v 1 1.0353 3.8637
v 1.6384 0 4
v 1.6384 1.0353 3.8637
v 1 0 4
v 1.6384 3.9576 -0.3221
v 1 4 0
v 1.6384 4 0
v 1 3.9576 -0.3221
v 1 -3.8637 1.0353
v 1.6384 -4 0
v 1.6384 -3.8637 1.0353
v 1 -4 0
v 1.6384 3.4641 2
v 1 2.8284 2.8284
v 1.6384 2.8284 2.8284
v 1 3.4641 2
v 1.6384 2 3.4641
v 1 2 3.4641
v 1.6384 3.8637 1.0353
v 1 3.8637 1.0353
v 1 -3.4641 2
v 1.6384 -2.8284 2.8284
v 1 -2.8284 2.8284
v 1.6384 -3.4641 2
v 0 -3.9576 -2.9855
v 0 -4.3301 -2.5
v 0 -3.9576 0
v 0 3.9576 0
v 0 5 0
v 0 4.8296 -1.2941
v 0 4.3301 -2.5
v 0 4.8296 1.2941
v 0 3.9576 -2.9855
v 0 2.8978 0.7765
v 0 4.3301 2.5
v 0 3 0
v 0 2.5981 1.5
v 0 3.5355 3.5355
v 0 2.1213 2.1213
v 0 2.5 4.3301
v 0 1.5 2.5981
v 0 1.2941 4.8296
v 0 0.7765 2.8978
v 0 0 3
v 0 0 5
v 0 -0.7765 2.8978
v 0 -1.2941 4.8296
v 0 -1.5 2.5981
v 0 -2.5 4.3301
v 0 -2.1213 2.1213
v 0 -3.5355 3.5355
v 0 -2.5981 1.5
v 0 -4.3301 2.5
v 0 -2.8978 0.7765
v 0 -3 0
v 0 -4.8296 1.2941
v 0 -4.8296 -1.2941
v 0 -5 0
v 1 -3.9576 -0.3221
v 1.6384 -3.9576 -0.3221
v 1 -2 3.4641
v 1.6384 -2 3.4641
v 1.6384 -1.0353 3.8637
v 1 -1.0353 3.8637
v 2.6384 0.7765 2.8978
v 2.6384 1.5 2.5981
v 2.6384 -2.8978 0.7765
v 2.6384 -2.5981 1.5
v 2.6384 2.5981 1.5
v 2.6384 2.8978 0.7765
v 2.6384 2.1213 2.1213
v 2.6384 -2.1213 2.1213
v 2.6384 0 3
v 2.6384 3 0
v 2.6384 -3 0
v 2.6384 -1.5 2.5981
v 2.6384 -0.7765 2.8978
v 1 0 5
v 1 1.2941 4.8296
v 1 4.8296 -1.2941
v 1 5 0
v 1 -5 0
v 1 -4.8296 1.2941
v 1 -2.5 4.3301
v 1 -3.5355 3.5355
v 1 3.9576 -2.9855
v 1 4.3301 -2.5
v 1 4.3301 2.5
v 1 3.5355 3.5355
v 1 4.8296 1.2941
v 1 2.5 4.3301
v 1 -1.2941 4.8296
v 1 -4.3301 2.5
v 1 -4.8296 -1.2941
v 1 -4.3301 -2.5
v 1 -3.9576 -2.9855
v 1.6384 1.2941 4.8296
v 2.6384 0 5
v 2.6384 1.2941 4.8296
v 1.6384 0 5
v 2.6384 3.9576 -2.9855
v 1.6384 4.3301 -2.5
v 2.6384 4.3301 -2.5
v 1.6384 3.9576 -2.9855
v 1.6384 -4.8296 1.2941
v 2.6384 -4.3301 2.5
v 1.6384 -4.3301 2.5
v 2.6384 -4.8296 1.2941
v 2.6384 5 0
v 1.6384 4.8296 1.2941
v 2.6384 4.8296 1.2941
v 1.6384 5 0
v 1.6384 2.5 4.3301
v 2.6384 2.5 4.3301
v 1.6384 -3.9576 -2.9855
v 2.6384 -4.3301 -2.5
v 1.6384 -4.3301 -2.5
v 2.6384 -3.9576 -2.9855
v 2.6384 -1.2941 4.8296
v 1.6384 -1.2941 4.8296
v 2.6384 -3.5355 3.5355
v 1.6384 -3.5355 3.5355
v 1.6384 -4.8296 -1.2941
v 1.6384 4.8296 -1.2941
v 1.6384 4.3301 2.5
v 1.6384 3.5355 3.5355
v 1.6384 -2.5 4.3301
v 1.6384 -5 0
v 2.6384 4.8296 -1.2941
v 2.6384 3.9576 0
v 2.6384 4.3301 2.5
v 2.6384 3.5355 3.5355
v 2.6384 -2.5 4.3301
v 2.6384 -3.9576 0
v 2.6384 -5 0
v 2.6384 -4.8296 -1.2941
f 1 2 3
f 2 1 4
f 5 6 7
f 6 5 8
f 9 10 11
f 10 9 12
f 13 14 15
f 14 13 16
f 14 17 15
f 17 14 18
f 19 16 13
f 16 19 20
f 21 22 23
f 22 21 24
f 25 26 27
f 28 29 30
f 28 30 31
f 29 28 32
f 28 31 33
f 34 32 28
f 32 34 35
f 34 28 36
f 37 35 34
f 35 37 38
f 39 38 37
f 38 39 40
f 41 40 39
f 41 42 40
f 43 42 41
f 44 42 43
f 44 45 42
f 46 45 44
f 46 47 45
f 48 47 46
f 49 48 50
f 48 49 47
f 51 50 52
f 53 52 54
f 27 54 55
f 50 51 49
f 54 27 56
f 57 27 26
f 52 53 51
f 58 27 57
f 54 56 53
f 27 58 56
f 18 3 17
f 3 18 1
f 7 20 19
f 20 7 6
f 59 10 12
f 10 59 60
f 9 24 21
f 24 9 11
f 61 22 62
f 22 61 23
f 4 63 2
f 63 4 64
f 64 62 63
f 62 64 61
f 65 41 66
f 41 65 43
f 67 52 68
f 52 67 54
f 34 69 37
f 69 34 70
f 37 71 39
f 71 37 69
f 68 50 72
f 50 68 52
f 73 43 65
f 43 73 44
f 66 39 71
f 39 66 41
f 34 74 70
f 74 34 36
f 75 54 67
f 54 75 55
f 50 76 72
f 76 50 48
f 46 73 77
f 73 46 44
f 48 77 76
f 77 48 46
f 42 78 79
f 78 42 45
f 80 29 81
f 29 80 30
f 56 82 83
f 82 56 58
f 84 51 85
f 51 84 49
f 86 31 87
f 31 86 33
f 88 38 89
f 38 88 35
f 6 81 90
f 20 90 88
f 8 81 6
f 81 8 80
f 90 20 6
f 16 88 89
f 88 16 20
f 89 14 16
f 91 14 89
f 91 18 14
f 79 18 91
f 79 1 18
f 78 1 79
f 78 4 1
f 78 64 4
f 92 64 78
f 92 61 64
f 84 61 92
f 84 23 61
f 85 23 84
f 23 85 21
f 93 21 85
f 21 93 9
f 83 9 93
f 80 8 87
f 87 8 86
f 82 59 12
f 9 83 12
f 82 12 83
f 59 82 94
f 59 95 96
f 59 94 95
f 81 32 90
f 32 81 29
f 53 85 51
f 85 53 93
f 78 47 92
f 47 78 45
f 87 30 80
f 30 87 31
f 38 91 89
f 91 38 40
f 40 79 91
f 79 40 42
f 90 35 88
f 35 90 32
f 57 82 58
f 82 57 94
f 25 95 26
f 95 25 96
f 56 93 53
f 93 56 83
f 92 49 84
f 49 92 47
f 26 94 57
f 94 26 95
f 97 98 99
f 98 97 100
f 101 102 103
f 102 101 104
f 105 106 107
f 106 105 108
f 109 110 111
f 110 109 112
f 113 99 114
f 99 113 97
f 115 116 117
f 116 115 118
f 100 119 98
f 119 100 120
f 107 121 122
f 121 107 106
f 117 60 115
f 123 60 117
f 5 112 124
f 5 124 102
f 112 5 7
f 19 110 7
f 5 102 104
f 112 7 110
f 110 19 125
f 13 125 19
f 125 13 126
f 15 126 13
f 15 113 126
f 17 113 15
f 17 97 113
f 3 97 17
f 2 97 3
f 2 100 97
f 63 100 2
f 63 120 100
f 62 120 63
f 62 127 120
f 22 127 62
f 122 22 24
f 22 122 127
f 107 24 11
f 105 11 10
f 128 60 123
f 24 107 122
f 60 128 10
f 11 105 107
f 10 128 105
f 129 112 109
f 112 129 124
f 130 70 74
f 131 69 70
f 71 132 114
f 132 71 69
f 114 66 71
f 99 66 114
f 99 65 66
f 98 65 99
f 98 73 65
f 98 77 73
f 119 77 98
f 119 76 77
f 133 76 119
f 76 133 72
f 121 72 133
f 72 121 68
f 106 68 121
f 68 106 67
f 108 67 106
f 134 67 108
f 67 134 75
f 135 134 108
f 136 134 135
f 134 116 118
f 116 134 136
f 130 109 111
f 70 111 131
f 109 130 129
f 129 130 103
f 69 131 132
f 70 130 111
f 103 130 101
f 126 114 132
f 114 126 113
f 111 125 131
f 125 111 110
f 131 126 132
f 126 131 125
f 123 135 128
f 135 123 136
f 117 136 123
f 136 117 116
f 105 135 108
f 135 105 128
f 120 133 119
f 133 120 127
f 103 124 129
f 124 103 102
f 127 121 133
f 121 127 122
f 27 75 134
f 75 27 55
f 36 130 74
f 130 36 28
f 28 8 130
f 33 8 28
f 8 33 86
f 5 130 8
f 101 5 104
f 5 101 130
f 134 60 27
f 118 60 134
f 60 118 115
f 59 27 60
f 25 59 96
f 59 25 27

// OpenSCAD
// file: ../build_environments.scad
// build_environments.scad: modules to build level sections
//

module pool(diameter=10.0, wall_height=2.0, step_width=3.0, connections=[])
{
    difference() {
        union() {
        difference() {
            cylinder(h=0.5,r1=diameter+step_width,r2=diameter+step_width,$fn=48);
            translate([0,0,-0.1])
                cylinder(h=0.7,r1=diameter,r2=diameter,$fn=48);
        }
        difference() {
            cylinder(h=wall_height,r1=diameter+step_width+1.0,r2=diameter+step_width+1.0,$fn=48);
            translate([0,0,-0.1])
                cylinder(h=wall_height+0.2,r1=diameter+step_width,r2=diameter+step_width,$fn=48);
        }
        }
    
        for (c = connections)
        {
            rotate([0,90,0]) {
                angle = atan2(c[1],c[0]);
                rotate([-angle,0,0]) {
                    cylinder(h=diameter+5.0,r1=c[2],r2=c[2],$fn=48);
                }
            }
        }
    }
}

module straight(length=10.0, width=2.0, dy1=0.0, dy2=0.0, dz=0.0)
{
    dims = [0, 0, 0, 0, 0, (dz/length)];
    matrix = [
        [ 1, dims[0], dims[1], 0 ],
        [ dims[2], 1, dims[4], 0 ],
        [ dims[5], dims[3], 1, 0 ],
        [ 0, 0, 0, 1 ]
    ];
    multmatrix(matrix)
    difference() {
        translate([dy1,0,0])
        union() {
            rotate([0,90,0]) {
                difference() {
                    cylinder(h=(length-dy1-dy2),r1=width+1.0,r2=width+1.0,$fn=24);
                    translate([0,0,-0.1])
                        cylinder(h=(length-dy1-dy2+0.2),r1=width,r2=width,$fn=24);
                }
                difference() {
                    cylinder(h=1.0,r1=width+2.0,r2=width+2.0,$fn=24);
                    translate([0,0,-0.1])
                        cylinder(h=1.2,r1=width,r2=width,$fn=24);
                }
                translate([0,0,(length-dy1-dy2)-1.0]) {
                    difference() {
                        cylinder(h=1.0,r1=width+2.0,r2=width+2.0,$fn=24);
                        translate([0,0,-0.1])
                            cylinder(h=1.2,r1=width,r2=width,$fn=24);
                    }
                }
            }
        }
        translate([0,0,-(2*width+4.0)/2])
            cube([3*length,3*length,2*width+4.0],center=true);
    }
}

module curve(p0=[0,0], center=[0,0], dir=1, angle=0.0, width=2.0)
{
    radius = sqrt((p0[0]-center[0])*(p0[0]-center[0]) + (p0[1]-center[1])*(p0[1]-center[1]));
    if (dir == 0) {
        difference() {
            rotate([0,0,-90])
            difference() {
                rotate_extrude(angle = angle, convexity = 10, $fn=32)
                    translate([radius, 0, 0])
                        circle(r = width+1.0,$fn=24);
                rotate([0,0,-1.0])
                    rotate_extrude(angle = angle+2.0, convexity = 10, $fn=32)
                        translate([radius, 0, 0])
                            circle(r = width,$fn=24);
            }
            translate([0,0,-(2*width+4.0)/2])
                cube([5*radius,5*radius,2*width+4.0],center=true);
        }
    }
    else {
        difference() {
            rotate([0,0,90])
            difference() {
                rotate_extrude(angle = -angle, convexity = 10, $fn=32)
                    translate([radius, 0, 0])
                        circle(r = width+1.0,$fn=24);
                rotate([0,0,1.0])
                    rotate_extrude(angle = -angle-2.0, convexity = 10, $fn=32)
                        translate([radius, 0, 0])
                            circle(r = width,$fn=24);
            }
            translate([0,0,-(2*width+4.0)/2])
                cube([5*radius,5*radius,2*width+4.0],center=true);
        }
    }

}

// test pool
//pool(diameter=12.0000, wall_height=3.0000, step_width=3.0000, connections=[[0.0000,-26.0000,2.0000], [23.6074,0.0000,2.0000]]);

// test straight, slope
//straight(length=26.0000, width=2.0000, dy1=11.8322, dy2=6.7082, dz=0.0000);
//straight(length=29.1549, width=12.0000, dy1=0.0000, dy2=0.0000, dz=-15.0000);

// test curve
//curve(p0=[23.6074, 0.0000], center=[23.6074, 5.0000], dir=0, angle=60.1011, width=2.0000);
//curve(p0=[33.6426, 12.4219], center=[37.9771, 9.9295], dir=1, angle=120.4627, width=2.0000);
// main file
use <../build_environments.scad>;
straight(length=2.6384, width=3.0000, dy1=0.0000, dy2=0.0000, dz=0.0000);
